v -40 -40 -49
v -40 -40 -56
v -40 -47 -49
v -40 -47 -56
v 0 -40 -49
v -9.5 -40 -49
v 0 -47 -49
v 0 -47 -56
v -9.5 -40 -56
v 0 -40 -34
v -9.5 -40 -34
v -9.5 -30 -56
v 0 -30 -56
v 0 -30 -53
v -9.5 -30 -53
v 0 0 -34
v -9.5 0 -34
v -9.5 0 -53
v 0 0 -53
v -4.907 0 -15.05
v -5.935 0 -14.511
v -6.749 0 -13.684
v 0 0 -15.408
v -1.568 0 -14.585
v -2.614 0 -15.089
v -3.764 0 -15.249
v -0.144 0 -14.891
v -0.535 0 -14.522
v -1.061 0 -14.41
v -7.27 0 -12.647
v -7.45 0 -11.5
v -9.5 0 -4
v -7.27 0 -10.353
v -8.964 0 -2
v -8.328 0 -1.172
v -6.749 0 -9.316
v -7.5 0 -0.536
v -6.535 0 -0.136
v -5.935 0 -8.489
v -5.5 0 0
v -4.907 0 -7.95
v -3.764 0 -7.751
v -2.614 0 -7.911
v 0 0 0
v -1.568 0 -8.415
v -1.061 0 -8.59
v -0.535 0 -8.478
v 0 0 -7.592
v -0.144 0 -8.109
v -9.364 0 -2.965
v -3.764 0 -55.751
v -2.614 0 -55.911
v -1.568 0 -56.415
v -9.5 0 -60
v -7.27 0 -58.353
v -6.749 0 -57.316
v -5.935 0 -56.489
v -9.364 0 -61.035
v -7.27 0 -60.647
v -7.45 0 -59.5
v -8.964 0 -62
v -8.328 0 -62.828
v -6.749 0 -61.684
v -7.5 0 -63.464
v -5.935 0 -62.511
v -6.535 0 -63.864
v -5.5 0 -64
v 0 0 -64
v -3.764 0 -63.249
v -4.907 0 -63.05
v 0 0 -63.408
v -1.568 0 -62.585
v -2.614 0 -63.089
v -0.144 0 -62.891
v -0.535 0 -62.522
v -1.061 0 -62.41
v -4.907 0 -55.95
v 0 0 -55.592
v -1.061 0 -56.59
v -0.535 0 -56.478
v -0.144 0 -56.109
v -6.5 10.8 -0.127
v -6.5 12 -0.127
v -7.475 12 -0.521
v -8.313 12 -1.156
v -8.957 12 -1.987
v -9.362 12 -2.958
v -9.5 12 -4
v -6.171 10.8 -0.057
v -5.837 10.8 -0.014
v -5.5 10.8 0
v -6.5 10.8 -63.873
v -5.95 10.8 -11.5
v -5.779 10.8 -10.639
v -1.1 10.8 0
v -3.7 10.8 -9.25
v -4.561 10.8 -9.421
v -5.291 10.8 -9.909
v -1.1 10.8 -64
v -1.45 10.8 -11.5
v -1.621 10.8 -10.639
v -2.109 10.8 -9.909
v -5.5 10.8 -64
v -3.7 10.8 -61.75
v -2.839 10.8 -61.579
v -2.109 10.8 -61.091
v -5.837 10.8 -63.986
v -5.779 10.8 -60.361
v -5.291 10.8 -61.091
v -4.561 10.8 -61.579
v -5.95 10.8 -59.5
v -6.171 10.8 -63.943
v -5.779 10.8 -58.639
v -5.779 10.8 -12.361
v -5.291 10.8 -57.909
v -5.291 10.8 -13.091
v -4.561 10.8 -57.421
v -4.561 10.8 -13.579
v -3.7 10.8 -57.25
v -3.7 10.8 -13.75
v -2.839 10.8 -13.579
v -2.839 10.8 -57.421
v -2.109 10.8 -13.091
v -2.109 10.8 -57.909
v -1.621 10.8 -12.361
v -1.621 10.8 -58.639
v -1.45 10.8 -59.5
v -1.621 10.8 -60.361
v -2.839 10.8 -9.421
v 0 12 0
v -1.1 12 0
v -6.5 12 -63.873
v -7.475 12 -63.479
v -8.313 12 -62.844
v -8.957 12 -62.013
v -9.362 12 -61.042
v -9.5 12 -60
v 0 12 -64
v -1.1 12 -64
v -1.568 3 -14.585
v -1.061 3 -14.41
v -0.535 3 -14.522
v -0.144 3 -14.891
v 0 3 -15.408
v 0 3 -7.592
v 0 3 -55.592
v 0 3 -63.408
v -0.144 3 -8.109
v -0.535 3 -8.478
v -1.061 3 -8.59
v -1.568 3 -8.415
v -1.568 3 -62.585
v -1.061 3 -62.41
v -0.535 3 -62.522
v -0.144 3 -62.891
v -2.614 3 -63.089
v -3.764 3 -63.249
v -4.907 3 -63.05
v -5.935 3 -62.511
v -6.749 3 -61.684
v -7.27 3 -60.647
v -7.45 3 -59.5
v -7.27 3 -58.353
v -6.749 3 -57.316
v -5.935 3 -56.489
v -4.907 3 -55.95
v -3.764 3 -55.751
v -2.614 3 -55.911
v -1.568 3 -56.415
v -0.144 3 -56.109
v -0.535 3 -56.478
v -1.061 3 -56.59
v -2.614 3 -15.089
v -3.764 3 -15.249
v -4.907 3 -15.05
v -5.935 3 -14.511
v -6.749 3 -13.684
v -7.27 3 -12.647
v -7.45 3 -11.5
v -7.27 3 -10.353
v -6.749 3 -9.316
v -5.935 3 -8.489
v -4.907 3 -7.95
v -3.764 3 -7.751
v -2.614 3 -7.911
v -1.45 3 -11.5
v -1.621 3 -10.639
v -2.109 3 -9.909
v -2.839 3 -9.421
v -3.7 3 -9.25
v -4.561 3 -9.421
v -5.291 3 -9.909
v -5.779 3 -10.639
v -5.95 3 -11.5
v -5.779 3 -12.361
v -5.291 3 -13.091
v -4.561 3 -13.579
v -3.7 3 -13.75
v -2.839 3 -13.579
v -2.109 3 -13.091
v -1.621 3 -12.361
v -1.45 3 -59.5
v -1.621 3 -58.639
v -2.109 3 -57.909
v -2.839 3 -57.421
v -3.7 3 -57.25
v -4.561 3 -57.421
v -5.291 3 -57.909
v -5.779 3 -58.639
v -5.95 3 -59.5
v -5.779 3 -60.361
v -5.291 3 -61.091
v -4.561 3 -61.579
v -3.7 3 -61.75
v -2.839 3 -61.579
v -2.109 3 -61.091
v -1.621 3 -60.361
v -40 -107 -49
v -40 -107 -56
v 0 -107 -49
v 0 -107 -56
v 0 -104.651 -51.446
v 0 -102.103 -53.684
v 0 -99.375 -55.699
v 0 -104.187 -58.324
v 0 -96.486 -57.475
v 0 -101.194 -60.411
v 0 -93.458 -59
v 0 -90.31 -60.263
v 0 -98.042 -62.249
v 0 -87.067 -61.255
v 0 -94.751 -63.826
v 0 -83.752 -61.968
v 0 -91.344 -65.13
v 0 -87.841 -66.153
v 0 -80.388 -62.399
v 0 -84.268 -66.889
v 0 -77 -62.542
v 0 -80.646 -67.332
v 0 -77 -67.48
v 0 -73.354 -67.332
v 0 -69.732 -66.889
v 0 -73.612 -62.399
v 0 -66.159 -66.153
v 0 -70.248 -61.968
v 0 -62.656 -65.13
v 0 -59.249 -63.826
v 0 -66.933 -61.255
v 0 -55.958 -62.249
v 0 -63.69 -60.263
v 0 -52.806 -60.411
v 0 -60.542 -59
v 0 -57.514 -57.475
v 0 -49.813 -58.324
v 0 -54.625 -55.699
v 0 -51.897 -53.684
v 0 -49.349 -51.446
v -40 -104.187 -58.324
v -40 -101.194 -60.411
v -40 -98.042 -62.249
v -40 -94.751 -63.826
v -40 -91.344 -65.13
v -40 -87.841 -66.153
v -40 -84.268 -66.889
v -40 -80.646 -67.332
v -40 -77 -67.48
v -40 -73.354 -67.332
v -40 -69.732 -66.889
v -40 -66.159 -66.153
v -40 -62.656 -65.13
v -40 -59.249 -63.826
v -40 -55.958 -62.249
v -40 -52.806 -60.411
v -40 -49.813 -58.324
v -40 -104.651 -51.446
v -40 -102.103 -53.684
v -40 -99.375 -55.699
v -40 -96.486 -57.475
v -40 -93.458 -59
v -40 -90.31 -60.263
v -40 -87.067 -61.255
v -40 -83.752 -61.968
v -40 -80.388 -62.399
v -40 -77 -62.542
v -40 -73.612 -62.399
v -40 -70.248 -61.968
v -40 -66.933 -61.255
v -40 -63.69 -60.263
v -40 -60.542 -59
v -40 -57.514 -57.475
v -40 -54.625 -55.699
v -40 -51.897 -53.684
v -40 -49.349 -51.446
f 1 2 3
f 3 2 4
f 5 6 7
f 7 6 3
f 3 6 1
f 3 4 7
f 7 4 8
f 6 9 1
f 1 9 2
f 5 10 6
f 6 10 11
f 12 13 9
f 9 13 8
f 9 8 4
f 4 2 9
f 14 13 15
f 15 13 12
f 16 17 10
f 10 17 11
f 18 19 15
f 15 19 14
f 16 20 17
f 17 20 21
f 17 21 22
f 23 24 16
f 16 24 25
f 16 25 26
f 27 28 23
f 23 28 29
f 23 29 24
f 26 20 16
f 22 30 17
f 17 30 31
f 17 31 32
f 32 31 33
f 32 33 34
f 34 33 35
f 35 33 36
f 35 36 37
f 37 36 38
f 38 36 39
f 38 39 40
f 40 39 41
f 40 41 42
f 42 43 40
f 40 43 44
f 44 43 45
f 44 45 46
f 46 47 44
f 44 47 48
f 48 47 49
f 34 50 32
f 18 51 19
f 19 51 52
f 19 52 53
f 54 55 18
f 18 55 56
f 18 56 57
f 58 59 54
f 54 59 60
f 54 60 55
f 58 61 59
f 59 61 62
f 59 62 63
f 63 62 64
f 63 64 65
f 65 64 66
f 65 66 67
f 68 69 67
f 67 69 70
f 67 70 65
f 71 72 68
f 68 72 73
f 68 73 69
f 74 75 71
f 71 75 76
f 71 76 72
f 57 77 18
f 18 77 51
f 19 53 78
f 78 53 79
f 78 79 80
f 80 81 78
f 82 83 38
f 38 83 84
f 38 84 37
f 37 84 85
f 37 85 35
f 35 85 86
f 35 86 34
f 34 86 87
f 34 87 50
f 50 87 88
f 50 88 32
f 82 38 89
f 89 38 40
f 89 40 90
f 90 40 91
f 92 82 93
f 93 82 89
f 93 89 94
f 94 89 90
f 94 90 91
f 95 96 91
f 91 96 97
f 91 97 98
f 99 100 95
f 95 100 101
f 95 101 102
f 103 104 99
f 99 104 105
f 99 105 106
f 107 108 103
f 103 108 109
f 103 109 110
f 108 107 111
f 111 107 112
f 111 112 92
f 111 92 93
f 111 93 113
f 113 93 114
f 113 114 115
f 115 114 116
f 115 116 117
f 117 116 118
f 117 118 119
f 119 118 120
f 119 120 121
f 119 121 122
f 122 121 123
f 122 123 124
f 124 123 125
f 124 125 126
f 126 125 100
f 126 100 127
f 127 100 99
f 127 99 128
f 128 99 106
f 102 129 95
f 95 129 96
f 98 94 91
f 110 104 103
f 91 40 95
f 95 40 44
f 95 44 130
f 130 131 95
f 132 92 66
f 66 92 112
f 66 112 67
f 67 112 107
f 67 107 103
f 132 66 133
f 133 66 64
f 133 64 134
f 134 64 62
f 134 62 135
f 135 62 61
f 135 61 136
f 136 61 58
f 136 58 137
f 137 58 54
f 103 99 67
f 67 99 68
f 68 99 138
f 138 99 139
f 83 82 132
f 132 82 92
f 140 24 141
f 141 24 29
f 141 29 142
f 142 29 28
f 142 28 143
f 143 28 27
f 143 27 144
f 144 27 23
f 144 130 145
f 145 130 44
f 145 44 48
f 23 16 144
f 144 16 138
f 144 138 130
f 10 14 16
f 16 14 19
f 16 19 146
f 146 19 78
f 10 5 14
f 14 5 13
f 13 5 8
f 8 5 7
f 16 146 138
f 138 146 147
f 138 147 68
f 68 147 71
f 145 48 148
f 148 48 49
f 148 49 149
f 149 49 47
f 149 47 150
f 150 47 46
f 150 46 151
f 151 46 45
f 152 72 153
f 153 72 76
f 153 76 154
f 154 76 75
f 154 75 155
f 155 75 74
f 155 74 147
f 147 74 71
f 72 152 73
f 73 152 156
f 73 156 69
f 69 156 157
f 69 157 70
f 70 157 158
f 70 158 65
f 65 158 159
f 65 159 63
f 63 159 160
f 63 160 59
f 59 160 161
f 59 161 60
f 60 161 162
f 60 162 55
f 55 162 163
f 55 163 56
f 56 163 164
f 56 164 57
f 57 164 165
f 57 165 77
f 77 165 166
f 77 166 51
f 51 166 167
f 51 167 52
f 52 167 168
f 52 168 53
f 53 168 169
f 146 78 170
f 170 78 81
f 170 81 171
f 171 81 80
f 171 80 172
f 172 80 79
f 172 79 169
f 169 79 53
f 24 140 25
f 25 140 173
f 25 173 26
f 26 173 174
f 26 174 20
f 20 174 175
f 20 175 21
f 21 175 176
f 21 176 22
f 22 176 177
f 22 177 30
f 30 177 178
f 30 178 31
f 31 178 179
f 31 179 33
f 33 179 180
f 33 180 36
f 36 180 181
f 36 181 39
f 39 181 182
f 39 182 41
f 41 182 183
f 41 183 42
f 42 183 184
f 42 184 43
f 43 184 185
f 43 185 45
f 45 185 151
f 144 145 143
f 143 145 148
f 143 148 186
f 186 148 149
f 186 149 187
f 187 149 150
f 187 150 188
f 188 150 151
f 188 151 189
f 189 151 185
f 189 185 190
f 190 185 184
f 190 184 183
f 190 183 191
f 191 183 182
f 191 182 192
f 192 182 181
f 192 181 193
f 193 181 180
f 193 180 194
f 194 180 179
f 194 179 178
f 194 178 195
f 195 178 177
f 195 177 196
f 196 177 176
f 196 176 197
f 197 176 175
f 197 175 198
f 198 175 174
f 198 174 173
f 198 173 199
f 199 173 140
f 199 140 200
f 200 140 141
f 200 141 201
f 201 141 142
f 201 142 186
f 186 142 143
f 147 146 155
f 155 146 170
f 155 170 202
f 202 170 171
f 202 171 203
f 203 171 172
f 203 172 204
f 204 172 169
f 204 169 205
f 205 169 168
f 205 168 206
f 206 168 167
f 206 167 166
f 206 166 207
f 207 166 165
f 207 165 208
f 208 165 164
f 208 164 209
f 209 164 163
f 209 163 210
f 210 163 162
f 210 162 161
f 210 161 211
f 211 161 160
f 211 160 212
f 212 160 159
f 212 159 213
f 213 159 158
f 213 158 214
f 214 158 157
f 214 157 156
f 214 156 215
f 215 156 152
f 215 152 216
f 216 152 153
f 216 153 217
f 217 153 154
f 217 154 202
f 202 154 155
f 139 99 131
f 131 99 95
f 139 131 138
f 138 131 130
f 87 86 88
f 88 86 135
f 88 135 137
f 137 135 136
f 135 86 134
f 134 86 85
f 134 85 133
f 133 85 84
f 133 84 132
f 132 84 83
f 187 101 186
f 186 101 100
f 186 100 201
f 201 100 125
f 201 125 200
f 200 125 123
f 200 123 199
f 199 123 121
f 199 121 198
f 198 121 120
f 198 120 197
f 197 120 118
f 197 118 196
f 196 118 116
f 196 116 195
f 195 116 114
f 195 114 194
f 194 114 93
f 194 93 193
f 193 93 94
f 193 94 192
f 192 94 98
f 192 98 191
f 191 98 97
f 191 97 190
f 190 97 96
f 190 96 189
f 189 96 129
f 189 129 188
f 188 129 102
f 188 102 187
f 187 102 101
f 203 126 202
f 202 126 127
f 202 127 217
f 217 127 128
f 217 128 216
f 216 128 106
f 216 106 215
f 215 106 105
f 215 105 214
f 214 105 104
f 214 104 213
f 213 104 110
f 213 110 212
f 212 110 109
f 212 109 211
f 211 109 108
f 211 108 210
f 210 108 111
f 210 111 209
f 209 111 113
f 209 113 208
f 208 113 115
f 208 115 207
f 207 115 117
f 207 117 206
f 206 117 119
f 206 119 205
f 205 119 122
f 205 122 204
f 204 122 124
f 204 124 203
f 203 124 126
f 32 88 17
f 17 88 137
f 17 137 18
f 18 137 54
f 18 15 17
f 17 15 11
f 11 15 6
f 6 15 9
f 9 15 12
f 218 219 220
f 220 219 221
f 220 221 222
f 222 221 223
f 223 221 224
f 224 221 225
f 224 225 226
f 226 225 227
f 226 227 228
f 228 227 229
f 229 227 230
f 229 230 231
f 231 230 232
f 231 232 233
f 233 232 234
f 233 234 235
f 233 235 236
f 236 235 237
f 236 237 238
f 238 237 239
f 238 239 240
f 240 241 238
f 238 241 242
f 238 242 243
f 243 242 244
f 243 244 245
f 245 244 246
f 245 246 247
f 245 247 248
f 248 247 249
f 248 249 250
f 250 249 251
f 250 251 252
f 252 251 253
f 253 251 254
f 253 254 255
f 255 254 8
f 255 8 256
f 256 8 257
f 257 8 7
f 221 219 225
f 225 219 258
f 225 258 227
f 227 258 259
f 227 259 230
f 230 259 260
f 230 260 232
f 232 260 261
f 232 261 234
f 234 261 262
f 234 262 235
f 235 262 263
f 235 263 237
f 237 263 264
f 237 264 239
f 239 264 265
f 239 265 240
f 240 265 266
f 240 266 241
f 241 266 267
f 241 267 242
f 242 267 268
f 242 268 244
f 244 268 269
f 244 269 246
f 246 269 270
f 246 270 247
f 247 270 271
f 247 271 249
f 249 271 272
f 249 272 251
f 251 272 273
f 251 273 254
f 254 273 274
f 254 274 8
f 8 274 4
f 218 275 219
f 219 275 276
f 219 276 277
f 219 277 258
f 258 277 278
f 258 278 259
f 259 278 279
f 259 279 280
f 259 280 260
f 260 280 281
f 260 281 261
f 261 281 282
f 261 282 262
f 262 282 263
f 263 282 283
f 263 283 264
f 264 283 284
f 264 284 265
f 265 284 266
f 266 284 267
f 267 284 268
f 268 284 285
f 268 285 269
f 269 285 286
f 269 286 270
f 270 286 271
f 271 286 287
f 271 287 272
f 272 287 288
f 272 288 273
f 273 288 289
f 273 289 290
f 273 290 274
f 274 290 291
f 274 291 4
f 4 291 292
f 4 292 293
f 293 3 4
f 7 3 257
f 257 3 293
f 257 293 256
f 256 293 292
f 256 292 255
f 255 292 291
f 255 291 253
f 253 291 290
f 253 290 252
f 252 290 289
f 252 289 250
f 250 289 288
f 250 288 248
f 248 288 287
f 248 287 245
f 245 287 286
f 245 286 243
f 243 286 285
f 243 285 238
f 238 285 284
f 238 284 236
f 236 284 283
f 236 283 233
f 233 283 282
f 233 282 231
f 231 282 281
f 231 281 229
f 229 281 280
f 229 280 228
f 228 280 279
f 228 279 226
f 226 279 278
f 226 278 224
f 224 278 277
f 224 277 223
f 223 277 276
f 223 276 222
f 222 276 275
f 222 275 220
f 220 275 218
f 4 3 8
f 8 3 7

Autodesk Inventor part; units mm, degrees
ref_plane "YZ Plane" through (0, 0, 0) normal (1, 0, 0) x (0, 1, 0)
ref_plane "XZ Plane" through (0, 0, 0) normal (0, 1, 0) x (-1, 0, 0)
ref_plane "XY Plane" through (0, 0, 0) normal (0, 0, 1) x (1, 0, 0)
sketch "Sketch1" plane through (0, 0, 0) normal (0, 1, 0) x (-1, 0, 0)
  line L0 (0, 0) -> (9.5, 0)
  line L1 (9.5, 0) -> (9.5, -64)
  line L2 (9.5, -64) -> (0, -64)
  line L3 (0, -64) -> (0, 0)
  circle A0 centre (3.7, -11.5) radius 2.25
  circle A1 centre (3.7, -59.5) radius 2.25
  line L4 (3.7, -11.5) -> (3.7, -59.5) construction
  dimension "d1" = 9.5
  dimension "d2" = 64
  dimension "d3" = 4.5
  dimension "d4" = 48
  dimension "d6" = 3.7
  dimension "d17" = 4.5
extrude "Extrusion1" add sketch "Sketch1" along normal blind 12
sketch "Sketch2" plane through (-9.5, 0, 0) normal (0, 0, 1) x (1, 0, 0)
  line L0 (9.5, 12) -> (0, 12) projected
  line L1 (3, 12) -> (8.4, 12)
  line L2 (8.4, 12) -> (8.4, 10.8)
  line L3 (8.4, 10.8) -> (3, 10.8)
  line L4 (3, 10.8) -> (3, 12)
  line L5 (9.5, 0) -> (9.5, 12) projected
  line L6 (3.55, 0) -> (8.05, 0) projected
  line L7 (3.55, 12) -> (8.05, 12) projected
  line L8 (9.5, 0) -> (9.5, 12) projected
  line L9 (9.5, 0) -> (9.5, 12) projected
  line L10 (3.55, 12) -> (8.05, 12) projected
  line L11 (3.55, 12) -> (3.55, 0) projected
  line L12 (3.55, 12) -> (8.05, 12) projected
  line L13 (3.55, 0) -> (8.05, 0) projected
  line L14 (3.55, 12) -> (8.05, 12) projected
  line L15 (3.55, 0) -> (8.05, 0) projected
  line L16 (3.55, 12) -> (8.05, 12) projected
  line L17 (3.55, 0) -> (8.05, 0) projected
  dimension "d9" = 1.1
  dimension "d10" = 5.4
  dimension "d11" = 1.2
  dimension "d76" = 12
extrude "Extrusion2" cut sketch "Sketch2" against normal up to next
sketch "Sketch3" plane through (0, 0, 0) normal (0, -1, 0) x (1, 0, 0)
  circle A0 centre (-3.7, -11.5) radius 2.25 projected
  circle A1 centre (-3.7, -11.5) radius 3.75
  circle A2 centre (-3.7, -59.5) radius 2.25 projected
  circle A3 centre (-3.7, -59.5) radius 3.75
  point P0 (0, 0)
  dimension "d14" = 7.5
extrude "Extrusion3" cut sketch "Sketch3" against normal blind 3
fillet "Fillet1" radius 1 4 edges at (0, 1.5, -58.8897) (0, 1.5, -60.1103) (0, 1.5, -10.8897) (0, 1.5, -12.1103)
fillet "Fillet2" radius 4 2 edges at (-9.5, 6, -64) (-9.5, 6, 0)
sketch "Sketch28" plane through (0, 0, 0) normal (0, -1, 0) x (1, 0, 0)
  arc A0 (-1.5684, -56.4147) -> (0, -55.592) centre (-1, -55.592) ccw projected
  line L0 (0, -55.592) -> (0, -53)
  line L1 (0, -15.408) -> (0, -55.592) projected
  line L2 (-9.5, -60) -> (-9.5, -4) projected
  line L3 (0, -53) -> (-9.5, -53)
  line L4 (-9.5, -53) -> (-9.5, -34)
  line L5 (-9.5, -34) -> (0, -34)
  line L6 (0, -34) -> (0, -53)
  point P0 (0, 0)
  point P1 (0, -34)
  dimension "d107" = 2.592
  dimension "d108" = 19
extrude "Extrusion19" add sketch "Sketch28" along normal blind 30
sketch "Sketch40" plane through (0, -30, 0) normal (0, -1, 0) x (1, 0, 0)
  line L0 (0, -53) -> (-9.5, -53) projected
  line L1 (-9.5, -53) -> (-9.5, -56)
  line L2 (-9.5, -56) -> (0, -56)
  line L3 (0, -56) -> (0, -34)
  line L4 (0, 0) -> (0, -64) projected
  line L5 (0, -34) -> (-9.5, -34)
  line L6 (-9.5, -34) -> (-9.5, -53)
  line L7 (-9.5, -34) -> (0, -34)
  line L8 (0, -34) -> (0, -56)
  line L9 (0, -56) -> (-9.5, -56)
  line L10 (-9.5, -56) -> (-9.5, -34)
  dimension "d130" = 3
  dimension "d131" = 22
extrude "Extrusion21" add sketch "Sketch40" along normal blind 10
sketch "Sketch41" plane through (0, 0, -53) normal (0, 0, -1) x (-1, 0, 0)
  point P0 (0, 0)
sketch "Sketch42" plane through (0, -40, 0) normal (0, -1, 0) x (1, 0, 0)
  line L0 (-9.5, -56) -> (0, -56) projected
  line L1 (-9.5, -56) -> (-40, -56)
  line L2 (-9.5, -56) -> (21, -56) construction
  line L3 (-40, -56) -> (-40, -49)
  line L4 (-40, -49) -> (0, -49)
  line L5 (0, -49) -> (0, -56)
  line L6 (0, -56) -> (-9.5, -56)
  point P0 (0, 0)
  point P1 (0, -56)
  dimension "d134" = 30.5
  dimension "d135" = 180
  dimension "d136" = 7
  dimension "d137" = 40
  dimension "d138" = 7
extrude "Extrusion22" add sketch "Sketch42" along normal blind 7
sketch "Sketch54" plane through (-40, -40, -56) normal (-1, 0, 0) x (0, 0, 1)
  arc A0 (7, -7) -> (7, -57) centre (31.4949, -32) ccw projected
  line L0 (-6.4428, -57) -> (19.2704, -57)
  line L1 (19.2704, -57) -> (19.2704, -74.6848)
  line L2 (19.2704, -74.6848) -> (-6.4428, -74.6848)
  line L3 (-6.4428, -74.6848) -> (-6.4428, -57)
  point P0 (56, 40)
extrude "Extrusion25" cut sketch "Sketch54" against normal blind 104.3
sketch "Sketch56" plane through (0, -47, 0) normal (0, -1, 0) x (1, 0, 0)
  line L0 (-40, -56) -> (0, -56) projected
  line L1 (0, -56) -> (0, -49) projected
  line L2 (-40, -56) -> (0, -56)
  line L3 (0, -56) -> (0, -49)
  line L4 (0, -49) -> (-40, -49)
  line L5 (-40, -49) -> (-40, -56)
  point P0 (0, 0)
  point P1 (9.3, -58)
sketch "Sketch58" plane through (-40, -40, -56) normal (-1, 0, 0) x (0, 0, 1)
  arc A0 (7, -7) -> (7, -67) centre (33.4575, -37) ccw
  point P0 (56, 40)
  dimension "d164" = 60
  dimension "d165" = 40
sweep "Sweep4" add profiles "Sketch56" path "Sketch58" separate body
sketch "Sketch59" plane through (-40, -47, -56) normal (-1, 0, 0) x (0, 0, 1)
  line L0 (7.875, -66.9451) -> (7, -60) projected
  line L1 (7, -60) -> (-3.876, -60)
  line L2 (-3.876, -60) -> (-3.876, -70.2842)
  line L3 (-3.876, -70.2842) -> (7, -70.2842)
  line L4 (7, -70.2842) -> (7, -60)
  line L5 (-3.876, -60) -> (12.796, -60)
  line L6 (12.796, -60) -> (12.796, -72.0421)
  line L7 (12.796, -72.0421) -> (-3.876, -72.0421)
  line L8 (-3.876, -72.0421) -> (-3.876, -60)
  point P0 (56, 47)
  point P1 (7, -60)
extrude "Extrusion26" cut sketch "Sketch59" against normal blind 63.025 bodies 2
sketch "Sketch60" plane through (0, -40, 0) normal (0, 1, 0) x (1, 0, 0)
  point P0 (0, 0)
properties part number "Back"
